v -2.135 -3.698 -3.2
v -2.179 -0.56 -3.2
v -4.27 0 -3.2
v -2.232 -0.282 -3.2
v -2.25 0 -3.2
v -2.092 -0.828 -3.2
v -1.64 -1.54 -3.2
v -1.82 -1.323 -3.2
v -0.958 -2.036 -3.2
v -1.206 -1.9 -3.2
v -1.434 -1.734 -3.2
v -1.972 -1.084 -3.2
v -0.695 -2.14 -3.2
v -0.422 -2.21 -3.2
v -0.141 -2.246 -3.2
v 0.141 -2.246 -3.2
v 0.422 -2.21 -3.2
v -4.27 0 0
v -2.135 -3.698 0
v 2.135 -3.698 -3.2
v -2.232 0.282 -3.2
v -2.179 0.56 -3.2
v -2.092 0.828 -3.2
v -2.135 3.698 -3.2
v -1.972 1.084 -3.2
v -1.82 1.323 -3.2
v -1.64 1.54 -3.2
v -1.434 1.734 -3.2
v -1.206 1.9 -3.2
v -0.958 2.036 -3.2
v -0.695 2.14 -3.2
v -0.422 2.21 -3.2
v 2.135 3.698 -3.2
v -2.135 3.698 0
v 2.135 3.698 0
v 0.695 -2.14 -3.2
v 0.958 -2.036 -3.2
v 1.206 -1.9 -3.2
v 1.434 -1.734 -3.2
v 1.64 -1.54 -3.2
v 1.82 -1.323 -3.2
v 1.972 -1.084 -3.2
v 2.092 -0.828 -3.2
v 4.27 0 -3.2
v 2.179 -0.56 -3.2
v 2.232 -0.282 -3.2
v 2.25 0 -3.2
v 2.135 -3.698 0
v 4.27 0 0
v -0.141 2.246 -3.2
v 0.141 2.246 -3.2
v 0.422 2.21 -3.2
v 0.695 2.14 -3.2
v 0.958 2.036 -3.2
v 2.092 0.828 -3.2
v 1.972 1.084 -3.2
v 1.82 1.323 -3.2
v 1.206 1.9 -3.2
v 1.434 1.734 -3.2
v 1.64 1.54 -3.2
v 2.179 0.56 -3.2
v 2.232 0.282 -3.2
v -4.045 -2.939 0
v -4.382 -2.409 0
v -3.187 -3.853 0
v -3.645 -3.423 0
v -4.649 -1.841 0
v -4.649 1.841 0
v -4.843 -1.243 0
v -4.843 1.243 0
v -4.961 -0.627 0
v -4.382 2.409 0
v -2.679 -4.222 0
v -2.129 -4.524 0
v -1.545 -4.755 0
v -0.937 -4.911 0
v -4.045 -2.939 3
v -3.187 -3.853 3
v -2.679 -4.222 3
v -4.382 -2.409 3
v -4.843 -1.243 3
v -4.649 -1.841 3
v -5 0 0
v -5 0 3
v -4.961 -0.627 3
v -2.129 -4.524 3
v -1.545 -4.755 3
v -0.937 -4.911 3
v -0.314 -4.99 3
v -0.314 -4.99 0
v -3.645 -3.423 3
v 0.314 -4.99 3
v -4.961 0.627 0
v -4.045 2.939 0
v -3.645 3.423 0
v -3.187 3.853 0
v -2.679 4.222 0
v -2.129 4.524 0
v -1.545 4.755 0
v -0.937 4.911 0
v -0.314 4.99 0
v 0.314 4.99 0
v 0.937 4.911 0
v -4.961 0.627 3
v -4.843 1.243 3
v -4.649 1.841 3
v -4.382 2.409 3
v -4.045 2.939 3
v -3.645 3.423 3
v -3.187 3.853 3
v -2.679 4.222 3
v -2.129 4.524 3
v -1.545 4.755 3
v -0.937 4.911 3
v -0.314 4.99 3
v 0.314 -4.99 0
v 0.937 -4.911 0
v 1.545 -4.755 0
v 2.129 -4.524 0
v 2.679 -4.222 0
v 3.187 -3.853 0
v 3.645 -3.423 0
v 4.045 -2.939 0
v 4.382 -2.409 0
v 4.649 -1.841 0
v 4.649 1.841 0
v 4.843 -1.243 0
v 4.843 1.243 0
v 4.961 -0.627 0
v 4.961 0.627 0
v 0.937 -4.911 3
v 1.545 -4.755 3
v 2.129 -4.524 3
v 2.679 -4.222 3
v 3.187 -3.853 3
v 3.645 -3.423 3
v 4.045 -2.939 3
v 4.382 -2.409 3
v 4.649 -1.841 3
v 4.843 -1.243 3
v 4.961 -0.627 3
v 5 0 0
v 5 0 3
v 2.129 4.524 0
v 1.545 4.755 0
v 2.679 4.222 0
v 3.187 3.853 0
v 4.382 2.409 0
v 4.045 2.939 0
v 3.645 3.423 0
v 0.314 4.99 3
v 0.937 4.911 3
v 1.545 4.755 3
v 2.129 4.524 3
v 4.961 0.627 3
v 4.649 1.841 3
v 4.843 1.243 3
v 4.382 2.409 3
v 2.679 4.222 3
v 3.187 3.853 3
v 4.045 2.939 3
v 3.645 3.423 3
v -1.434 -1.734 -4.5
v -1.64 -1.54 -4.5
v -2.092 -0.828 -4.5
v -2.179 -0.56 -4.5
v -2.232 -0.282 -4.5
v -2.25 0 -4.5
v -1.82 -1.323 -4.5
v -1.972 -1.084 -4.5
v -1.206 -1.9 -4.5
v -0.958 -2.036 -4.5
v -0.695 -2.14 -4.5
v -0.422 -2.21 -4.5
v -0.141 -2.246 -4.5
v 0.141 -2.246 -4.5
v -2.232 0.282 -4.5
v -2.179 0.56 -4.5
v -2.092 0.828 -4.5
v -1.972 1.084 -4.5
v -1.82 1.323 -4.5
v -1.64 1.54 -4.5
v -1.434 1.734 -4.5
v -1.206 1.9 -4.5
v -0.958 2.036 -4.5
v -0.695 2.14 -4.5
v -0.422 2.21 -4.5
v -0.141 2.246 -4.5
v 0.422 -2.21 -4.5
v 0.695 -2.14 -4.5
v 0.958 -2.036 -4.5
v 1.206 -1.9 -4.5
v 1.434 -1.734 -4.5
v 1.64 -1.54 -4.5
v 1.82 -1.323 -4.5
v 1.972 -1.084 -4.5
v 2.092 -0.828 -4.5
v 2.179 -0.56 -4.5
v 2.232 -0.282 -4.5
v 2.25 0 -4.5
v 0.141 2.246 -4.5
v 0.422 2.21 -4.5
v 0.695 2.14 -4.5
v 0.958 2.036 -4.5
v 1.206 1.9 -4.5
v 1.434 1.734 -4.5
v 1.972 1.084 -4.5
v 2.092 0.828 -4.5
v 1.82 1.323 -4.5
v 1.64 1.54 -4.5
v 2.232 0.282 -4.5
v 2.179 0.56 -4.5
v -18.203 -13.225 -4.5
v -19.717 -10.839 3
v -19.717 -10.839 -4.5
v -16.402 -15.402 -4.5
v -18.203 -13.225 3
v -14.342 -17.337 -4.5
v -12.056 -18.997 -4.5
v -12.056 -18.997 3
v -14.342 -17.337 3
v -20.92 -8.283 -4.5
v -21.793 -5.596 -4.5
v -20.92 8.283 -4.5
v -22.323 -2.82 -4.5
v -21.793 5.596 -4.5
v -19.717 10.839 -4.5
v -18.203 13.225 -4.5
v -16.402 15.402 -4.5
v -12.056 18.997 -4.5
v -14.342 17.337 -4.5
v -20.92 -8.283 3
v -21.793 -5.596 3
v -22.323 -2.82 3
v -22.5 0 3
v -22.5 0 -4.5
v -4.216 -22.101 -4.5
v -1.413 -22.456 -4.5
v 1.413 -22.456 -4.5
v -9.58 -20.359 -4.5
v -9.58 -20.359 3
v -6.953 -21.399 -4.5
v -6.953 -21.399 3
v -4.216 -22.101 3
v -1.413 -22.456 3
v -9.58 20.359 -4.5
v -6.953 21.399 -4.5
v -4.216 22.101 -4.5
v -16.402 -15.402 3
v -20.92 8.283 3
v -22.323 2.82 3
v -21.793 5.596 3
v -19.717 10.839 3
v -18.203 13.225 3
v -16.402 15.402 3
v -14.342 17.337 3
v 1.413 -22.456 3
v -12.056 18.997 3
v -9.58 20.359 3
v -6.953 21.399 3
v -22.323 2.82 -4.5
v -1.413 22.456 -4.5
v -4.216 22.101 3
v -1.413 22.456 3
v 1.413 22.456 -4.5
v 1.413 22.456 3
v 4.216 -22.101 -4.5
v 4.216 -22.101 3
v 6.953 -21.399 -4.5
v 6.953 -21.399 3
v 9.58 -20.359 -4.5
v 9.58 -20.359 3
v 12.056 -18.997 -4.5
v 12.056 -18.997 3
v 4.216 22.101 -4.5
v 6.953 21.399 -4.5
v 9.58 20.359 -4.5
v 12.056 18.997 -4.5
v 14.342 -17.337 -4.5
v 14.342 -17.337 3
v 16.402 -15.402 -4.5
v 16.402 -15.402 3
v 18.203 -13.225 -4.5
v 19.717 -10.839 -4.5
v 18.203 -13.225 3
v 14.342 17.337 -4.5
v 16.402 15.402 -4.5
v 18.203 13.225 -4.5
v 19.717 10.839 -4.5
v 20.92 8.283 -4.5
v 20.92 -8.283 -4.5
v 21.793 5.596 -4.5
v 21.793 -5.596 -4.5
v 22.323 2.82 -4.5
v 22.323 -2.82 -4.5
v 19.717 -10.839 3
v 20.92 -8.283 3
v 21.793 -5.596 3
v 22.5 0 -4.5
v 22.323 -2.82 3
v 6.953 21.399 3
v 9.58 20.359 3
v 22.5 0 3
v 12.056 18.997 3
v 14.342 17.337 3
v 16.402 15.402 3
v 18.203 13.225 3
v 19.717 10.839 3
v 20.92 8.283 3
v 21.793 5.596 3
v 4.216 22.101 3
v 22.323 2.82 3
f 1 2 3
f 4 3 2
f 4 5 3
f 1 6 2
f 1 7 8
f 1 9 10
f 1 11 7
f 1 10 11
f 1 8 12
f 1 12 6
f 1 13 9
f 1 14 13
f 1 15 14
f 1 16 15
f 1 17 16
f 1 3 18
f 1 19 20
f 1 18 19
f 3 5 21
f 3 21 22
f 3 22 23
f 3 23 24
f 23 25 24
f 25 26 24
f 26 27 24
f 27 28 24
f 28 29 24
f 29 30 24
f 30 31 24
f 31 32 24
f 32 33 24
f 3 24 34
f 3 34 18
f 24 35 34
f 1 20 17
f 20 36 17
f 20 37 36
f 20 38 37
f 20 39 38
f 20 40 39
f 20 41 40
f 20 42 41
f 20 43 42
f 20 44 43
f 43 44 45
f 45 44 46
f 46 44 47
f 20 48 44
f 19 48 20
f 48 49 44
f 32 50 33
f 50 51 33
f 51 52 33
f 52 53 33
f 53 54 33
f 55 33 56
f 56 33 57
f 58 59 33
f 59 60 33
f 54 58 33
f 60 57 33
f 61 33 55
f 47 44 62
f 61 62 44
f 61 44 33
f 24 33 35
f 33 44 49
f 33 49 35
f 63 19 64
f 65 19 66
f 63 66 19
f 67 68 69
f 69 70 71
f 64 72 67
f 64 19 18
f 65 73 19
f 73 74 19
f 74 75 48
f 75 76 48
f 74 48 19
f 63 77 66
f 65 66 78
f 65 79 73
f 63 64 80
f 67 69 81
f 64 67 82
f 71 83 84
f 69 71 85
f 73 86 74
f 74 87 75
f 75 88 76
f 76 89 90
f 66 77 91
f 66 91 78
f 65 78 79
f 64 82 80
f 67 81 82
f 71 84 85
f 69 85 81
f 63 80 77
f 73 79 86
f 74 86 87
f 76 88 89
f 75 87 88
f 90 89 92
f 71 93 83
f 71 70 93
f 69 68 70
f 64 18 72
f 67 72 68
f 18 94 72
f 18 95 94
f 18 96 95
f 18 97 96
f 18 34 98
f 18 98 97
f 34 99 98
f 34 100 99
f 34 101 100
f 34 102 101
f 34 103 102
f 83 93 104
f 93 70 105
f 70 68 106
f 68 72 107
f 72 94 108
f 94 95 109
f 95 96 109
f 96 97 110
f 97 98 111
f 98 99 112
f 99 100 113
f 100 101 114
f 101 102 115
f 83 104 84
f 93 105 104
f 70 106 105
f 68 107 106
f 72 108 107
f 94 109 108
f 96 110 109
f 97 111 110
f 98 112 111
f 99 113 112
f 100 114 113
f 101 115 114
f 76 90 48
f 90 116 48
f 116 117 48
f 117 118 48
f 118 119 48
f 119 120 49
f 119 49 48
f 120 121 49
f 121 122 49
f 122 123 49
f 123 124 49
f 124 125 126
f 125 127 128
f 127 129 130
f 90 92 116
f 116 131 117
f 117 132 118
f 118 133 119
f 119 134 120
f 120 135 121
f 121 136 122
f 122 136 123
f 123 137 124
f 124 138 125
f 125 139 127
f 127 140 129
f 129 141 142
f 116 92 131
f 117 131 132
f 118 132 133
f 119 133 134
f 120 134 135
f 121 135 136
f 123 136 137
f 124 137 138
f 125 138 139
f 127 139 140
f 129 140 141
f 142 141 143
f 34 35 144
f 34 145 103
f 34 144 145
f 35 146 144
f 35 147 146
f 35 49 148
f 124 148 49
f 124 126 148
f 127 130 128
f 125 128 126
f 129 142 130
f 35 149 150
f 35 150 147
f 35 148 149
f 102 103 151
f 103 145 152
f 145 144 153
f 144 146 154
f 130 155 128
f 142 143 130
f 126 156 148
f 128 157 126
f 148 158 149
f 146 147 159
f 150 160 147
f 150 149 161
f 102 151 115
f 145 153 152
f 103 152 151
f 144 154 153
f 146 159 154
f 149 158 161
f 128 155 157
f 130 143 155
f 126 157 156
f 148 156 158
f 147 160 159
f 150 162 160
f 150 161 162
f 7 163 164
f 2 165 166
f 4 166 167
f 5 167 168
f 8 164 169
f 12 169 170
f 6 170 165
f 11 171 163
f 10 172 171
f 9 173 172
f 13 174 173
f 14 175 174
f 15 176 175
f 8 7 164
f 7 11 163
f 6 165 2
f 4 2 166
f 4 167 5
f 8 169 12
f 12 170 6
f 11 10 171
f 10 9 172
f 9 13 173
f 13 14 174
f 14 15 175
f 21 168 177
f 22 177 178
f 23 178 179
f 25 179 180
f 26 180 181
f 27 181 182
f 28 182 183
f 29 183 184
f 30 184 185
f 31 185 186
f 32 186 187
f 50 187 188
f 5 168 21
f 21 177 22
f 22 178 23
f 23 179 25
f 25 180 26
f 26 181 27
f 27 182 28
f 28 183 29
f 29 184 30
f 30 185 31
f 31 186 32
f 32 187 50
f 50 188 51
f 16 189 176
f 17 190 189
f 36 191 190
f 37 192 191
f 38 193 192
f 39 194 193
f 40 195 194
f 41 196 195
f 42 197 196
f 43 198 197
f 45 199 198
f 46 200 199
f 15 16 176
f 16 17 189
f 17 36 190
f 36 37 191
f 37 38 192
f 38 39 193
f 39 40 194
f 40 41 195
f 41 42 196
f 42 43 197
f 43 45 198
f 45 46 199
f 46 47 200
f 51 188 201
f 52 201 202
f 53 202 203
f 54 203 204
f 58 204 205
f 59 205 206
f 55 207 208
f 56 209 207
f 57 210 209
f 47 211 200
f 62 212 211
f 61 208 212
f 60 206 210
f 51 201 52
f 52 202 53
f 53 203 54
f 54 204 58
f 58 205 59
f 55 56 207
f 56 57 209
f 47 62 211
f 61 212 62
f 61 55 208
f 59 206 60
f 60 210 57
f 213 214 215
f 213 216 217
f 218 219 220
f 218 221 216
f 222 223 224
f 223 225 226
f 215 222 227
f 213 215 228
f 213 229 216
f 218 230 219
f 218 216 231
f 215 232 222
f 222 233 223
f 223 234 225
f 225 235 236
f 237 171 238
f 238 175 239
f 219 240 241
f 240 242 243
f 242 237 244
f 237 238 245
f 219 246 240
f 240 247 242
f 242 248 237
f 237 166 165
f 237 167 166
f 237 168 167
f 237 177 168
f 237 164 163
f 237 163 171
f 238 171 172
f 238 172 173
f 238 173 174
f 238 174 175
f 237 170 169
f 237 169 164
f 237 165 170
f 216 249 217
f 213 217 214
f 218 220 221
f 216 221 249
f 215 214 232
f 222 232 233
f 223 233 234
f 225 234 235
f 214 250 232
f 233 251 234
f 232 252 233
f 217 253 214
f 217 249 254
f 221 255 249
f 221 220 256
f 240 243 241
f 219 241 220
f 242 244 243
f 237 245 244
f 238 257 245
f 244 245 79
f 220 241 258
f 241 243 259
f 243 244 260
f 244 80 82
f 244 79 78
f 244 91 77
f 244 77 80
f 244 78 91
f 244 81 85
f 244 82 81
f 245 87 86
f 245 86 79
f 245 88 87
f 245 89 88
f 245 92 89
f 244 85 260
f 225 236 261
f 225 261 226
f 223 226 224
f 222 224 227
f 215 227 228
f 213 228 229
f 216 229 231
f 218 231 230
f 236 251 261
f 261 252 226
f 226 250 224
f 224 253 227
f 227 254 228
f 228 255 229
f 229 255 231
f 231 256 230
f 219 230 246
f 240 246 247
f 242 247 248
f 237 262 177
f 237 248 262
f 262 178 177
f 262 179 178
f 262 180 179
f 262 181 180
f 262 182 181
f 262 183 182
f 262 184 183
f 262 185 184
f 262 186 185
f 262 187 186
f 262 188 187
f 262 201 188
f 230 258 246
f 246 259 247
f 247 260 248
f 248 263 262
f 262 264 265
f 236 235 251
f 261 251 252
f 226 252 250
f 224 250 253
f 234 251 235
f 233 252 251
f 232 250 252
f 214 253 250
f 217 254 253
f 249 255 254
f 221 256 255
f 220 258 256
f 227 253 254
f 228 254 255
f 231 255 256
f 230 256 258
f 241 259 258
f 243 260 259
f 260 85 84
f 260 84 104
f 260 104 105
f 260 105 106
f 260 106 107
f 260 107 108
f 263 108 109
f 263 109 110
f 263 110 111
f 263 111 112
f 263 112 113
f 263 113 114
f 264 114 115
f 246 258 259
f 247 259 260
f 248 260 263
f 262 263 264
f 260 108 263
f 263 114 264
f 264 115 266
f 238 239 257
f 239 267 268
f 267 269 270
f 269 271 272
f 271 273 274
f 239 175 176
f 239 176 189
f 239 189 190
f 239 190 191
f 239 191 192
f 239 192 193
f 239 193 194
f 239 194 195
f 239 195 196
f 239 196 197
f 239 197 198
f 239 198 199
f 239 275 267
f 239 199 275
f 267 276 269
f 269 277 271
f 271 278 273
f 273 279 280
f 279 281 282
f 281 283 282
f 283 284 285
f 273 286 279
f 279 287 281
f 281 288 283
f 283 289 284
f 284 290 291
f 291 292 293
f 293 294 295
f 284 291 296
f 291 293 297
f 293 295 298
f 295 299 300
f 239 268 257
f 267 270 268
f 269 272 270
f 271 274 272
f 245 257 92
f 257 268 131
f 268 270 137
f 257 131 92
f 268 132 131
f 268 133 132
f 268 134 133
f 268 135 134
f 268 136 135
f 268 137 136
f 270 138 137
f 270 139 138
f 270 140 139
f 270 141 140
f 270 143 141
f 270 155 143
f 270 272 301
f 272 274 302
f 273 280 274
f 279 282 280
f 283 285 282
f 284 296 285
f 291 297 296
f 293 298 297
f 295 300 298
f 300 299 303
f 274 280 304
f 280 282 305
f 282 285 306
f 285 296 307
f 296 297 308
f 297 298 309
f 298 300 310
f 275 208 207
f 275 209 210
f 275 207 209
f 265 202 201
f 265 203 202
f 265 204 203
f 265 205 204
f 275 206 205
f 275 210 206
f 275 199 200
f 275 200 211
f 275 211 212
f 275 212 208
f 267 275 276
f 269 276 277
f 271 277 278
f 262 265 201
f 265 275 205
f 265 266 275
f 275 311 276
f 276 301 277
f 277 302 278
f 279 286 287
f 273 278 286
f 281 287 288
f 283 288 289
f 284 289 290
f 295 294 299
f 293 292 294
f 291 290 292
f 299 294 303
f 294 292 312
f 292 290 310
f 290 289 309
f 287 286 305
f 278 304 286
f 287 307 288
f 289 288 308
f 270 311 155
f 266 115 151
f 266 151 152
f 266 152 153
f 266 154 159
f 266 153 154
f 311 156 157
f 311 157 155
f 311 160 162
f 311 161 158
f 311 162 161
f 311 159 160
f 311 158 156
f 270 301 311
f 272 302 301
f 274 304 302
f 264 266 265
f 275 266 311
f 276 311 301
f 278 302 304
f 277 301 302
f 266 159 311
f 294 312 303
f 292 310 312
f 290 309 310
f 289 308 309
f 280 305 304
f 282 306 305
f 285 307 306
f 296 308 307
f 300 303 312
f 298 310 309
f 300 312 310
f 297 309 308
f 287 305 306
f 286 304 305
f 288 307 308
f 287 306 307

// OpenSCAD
$fn = 50;


difference() {
	union() {
		translate(v = [0, 0, -4.5000000000]) {
			cylinder(h = 7.5000000000, r = 22.5000000000);
		}
	}
	union() {
		translate(v = [0, 0, 0]) {
			rotate(a = [0, 0, 0]) {
				difference() {
					union() {
						translate(v = [0, 0, -3.2000000000]) {
							linear_extrude(height = 3.2000000000) {
								polygon(points = [[4.2698000000, 0.0000000000], [2.1349000000, 3.6977552691], [-2.1349000000, 3.6977552691], [-4.2698000000, 0.0000000000], [-2.1349000000, -3.6977552691], [2.1349000000, -3.6977552691]]);
							}
						}
					}
					union();
				}
			}
		}
		#cylinder(h = 3, r = 5.0000000000);
		#translate(v = [0, 0, -100.0000000000]) {
			cylinder(h = 200, r = 2.2500000000);
		}
	}
}
